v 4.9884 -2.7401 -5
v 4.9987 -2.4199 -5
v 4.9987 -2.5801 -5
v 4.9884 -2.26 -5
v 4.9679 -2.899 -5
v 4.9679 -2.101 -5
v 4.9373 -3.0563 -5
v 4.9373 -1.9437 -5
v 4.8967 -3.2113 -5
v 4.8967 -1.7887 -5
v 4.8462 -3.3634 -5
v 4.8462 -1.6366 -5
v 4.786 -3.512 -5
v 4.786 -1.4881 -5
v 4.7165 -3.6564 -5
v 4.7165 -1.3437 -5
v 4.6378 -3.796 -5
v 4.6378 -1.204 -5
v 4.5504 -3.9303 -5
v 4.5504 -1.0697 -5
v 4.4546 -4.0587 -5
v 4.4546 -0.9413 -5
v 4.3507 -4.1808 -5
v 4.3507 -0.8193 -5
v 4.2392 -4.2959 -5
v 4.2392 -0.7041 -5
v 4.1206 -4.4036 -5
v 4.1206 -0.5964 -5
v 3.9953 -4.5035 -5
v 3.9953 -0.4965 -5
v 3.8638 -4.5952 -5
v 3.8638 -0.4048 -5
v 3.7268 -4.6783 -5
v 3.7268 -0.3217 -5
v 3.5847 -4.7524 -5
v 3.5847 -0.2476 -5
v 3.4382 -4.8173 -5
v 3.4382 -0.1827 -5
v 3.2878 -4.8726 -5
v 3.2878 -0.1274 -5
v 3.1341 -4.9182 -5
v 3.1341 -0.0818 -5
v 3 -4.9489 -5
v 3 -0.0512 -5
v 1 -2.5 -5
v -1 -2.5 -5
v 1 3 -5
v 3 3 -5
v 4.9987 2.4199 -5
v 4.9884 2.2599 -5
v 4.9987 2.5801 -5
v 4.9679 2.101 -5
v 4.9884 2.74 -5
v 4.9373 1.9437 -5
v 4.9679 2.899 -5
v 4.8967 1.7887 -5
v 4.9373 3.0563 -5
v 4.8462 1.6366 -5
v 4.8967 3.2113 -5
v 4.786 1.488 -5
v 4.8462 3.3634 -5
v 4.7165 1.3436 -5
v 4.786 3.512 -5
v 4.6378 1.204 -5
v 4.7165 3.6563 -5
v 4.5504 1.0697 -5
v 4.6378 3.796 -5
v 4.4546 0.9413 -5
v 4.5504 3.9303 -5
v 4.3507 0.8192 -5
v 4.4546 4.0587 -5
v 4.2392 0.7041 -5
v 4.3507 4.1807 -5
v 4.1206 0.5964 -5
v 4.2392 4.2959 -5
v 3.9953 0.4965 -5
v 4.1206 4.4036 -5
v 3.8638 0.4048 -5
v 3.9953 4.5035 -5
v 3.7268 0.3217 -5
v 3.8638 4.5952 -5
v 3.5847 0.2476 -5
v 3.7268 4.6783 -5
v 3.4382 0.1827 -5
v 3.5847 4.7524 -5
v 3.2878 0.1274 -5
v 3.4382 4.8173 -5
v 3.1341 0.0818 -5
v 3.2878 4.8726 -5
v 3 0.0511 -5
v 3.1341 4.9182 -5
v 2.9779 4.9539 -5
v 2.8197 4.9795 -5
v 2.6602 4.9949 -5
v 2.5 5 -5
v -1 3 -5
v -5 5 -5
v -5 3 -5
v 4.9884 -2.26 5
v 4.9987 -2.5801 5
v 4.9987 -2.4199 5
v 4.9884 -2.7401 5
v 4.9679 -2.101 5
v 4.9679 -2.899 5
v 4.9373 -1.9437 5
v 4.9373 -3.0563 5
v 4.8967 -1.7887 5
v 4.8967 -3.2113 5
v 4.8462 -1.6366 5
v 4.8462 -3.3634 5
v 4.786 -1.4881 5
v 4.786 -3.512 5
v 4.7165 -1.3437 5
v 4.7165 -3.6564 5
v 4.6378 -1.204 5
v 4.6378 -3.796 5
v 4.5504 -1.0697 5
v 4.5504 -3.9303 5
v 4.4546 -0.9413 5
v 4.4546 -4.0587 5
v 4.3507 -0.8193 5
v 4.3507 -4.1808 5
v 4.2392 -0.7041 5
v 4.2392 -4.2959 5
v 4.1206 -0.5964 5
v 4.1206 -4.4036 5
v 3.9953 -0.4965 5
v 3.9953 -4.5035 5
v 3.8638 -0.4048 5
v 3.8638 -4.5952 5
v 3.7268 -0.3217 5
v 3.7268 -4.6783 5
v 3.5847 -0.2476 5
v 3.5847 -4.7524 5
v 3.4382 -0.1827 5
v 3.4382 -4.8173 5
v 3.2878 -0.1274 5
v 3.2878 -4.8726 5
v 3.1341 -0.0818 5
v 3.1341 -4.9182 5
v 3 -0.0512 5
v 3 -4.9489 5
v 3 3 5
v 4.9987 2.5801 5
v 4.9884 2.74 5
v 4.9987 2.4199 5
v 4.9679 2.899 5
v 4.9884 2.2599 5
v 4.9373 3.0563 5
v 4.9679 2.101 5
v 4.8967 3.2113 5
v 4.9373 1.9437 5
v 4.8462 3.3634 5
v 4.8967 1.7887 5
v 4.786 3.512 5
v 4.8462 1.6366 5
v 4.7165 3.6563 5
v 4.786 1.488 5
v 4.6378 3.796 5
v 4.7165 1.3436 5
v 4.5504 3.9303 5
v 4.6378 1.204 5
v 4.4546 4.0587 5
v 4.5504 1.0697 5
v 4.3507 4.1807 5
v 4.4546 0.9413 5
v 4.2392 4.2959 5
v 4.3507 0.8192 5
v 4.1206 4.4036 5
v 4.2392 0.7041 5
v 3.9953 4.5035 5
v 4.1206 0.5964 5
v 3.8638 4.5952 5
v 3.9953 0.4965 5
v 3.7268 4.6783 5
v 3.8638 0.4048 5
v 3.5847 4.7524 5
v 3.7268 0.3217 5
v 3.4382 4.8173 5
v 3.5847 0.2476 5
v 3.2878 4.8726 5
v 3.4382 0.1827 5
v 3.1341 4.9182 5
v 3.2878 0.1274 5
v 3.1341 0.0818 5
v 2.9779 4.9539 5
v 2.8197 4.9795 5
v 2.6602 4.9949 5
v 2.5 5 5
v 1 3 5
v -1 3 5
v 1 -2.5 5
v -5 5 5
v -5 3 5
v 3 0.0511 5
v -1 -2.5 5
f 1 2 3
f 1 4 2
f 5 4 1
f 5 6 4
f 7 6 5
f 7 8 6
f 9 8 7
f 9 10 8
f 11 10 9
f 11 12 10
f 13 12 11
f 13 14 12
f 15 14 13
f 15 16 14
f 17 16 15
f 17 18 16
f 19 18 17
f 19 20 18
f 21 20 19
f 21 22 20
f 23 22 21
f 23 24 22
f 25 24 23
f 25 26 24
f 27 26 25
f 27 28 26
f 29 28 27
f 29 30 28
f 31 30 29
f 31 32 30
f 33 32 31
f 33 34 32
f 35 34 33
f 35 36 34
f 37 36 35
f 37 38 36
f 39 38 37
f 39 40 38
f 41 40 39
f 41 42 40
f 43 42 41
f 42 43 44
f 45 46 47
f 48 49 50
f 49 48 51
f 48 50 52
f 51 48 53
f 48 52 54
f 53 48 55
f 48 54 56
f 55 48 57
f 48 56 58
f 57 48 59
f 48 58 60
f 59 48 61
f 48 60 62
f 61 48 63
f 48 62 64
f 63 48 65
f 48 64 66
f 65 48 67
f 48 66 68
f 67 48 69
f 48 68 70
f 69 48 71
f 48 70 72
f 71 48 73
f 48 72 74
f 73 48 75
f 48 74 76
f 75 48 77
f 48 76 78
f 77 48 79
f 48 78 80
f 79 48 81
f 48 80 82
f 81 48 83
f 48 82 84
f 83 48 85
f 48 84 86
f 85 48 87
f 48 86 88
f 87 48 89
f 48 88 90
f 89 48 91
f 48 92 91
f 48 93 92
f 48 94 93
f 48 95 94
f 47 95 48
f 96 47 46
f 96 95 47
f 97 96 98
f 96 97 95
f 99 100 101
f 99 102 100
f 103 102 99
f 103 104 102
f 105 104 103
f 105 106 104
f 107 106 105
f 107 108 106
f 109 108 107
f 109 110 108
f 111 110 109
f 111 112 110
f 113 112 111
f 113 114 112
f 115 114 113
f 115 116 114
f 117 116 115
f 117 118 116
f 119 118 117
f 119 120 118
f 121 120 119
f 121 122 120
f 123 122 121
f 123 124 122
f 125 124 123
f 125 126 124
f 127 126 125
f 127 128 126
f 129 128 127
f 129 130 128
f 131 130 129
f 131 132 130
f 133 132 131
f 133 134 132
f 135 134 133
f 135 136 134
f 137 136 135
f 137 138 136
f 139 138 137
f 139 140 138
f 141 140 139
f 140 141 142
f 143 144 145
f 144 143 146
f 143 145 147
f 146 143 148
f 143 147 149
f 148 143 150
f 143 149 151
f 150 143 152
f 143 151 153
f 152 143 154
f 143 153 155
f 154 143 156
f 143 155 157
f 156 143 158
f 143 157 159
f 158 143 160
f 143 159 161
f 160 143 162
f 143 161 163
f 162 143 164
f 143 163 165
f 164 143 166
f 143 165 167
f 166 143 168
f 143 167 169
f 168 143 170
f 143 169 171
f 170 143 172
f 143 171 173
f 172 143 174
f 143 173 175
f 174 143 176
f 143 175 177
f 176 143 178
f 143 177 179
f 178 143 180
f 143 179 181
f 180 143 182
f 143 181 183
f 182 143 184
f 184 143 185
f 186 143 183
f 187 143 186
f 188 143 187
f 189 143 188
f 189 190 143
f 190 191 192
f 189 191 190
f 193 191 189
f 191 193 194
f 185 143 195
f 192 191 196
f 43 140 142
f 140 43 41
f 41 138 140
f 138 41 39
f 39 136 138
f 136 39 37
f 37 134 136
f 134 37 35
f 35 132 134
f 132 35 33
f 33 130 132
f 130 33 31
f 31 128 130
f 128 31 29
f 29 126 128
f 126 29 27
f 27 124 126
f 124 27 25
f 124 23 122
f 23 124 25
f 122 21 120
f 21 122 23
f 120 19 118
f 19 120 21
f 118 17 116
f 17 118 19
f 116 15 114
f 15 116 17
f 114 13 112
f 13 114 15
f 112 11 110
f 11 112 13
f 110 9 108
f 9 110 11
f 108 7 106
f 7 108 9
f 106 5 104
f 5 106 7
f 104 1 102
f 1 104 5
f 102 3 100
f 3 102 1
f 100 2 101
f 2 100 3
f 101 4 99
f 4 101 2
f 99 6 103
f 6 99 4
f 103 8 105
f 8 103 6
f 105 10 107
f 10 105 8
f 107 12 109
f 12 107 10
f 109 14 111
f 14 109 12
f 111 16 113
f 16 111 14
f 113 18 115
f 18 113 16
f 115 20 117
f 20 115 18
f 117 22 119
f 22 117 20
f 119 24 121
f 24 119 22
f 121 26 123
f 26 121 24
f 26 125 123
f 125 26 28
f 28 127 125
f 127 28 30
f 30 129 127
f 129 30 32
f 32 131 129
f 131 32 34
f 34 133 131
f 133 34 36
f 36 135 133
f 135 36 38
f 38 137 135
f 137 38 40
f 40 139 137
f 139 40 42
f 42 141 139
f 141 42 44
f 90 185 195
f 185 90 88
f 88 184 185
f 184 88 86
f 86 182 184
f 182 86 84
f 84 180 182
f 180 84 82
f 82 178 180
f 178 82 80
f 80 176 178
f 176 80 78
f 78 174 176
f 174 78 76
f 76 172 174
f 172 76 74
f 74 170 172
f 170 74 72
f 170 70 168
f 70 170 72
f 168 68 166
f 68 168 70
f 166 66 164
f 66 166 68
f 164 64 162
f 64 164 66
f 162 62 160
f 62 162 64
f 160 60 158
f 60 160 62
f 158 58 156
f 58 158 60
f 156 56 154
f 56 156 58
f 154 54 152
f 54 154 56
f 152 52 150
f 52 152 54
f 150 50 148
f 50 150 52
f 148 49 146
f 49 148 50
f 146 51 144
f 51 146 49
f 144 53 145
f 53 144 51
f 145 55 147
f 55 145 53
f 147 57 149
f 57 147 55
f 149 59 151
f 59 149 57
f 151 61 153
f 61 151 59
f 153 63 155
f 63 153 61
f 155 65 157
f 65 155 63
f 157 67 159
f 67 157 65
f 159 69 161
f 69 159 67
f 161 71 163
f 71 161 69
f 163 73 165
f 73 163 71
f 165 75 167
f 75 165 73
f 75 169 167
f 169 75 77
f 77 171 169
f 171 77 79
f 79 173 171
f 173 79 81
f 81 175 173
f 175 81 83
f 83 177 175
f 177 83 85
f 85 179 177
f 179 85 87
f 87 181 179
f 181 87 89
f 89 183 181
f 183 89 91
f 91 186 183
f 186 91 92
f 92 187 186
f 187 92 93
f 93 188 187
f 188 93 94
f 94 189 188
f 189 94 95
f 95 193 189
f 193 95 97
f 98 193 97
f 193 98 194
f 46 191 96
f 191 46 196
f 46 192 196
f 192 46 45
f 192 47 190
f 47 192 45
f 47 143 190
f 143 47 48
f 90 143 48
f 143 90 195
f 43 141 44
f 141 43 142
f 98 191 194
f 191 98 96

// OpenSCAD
// Generated by SolidPython 1.1.3 on 2025-02-20 04:03:49
$fn=50;


intersection() {
	translate(v = [-5.0000000000, -5.0000000000, -5.0000000000]) {
		linear_extrude(height = 10) {
			polygon(points = [[7.5000000000, 10.0000000000], [7.6601755500, 9.9948634819], [7.8196929042, 9.9794750346], [7.9778965718, 9.9538978925], [8.1341364598, 9.9182371576], [8.2877705451, 9.8726393675], [8.4381675122, 9.8172918934], [8.5847093478, 9.7524221698], [8.7267938800, 9.6782967603], [8.8638372530, 9.5952202622], [8.9952763262, 9.5035340547], [9.1205709883, 9.4036148959], [9.2392063765, 9.2958733752], [9.3506949927, 9.1807522257], [9.4545787062, 9.0587245046], [9.5504306365, 8.9302916503], [9.6378569075, 8.7959814208], [9.7164982659, 8.6563457256], [9.7860315575, 8.5119583578], [9.8461710551, 8.3634126361], [9.8966696326, 8.2113189666], [9.9373197805, 8.0563023349], [9.9679544585, 7.8989997376], [9.9884477824, 7.7400575648], [9.9987155405, 7.5801289439], [9.9987155405, 7.4198710561], [9.9884477824, 7.2599424352], [9.9679544585, 7.1010002624], [9.9373197805, 6.9436976651], [9.8966696326, 6.7886810334], [9.8461710551, 6.6365873639], [9.7860315575, 6.4880416422], [9.7164982659, 6.3436542744], [9.6378569075, 6.2040185792], [9.5504306365, 6.0697083497], [9.4545787062, 5.9412754954], [9.3506949927, 5.8192477743], [9.2392063765, 5.7041266248], [9.1205709883, 5.5963851041], [8.9952763262, 5.4964659453], [8.8638372530, 5.4047797378], [8.7267938800, 5.3217032397], [8.5847093478, 5.2475778302], [8.4381675122, 5.1827081066], [8.2877705451, 5.1273606325], [8.1341364598, 5.0817628424], [7.9778965718, 5.0461021075], [7.8196929042, 5.0205249654], [7.6601755500, 5.0051365181], [7.5000000000, 5.0000000000], [7.5000000000, 5.0000000000], [7.6601755500, 4.9948634819], [7.8196929042, 4.9794750346], [7.9778965718, 4.9538978925], [8.1341364598, 4.9182371576], [8.2877705451, 4.8726393675], [8.4381675122, 4.8172918934], [8.5847093478, 4.7524221698], [8.7267938800, 4.6782967603], [8.8638372530, 4.5952202622], [8.9952763262, 4.5035340547], [9.1205709883, 4.4036148959], [9.2392063765, 4.2958733752], [9.3506949927, 4.1807522257], [9.4545787062, 4.0587245046], [9.5504306365, 3.9302916503], [9.6378569075, 3.7959814208], [9.7164982659, 3.6563457256], [9.7860315575, 3.5119583578], [9.8461710551, 3.3634126361], [9.8966696326, 3.2113189666], [9.9373197805, 3.0563023349], [9.9679544585, 2.8989997376], [9.9884477824, 2.7400575648], [9.9987155405, 2.5801289439], [9.9987155405, 2.4198710561], [9.9884477824, 2.2599424352], [9.9679544585, 2.1010002624], [9.9373197805, 1.9436976651], [9.8966696326, 1.7886810334], [9.8461710551, 1.6365873639], [9.7860315575, 1.4880416422], [9.7164982659, 1.3436542744], [9.6378569075, 1.2040185792], [9.5504306365, 1.0697083497], [9.4545787062, 0.9412754954], [9.3506949927, 0.8192477743], [9.2392063765, 0.7041266248], [9.1205709883, 0.5963851041], [8.9952763262, 0.4964659453], [8.8638372530, 0.4047797378], [8.7267938800, 0.3217032397], [8.5847093478, 0.2475778302], [8.4381675122, 0.1827081066], [8.2877705451, 0.1273606325], [8.1341364598, 0.0817628424], [7.9778965718, 0.0461021075], [7.8196929042, 0.0205249654], [7.6601755500, 0.0051365181], [7.5000000000, 0.0000000000], [0, 0], [0, 10]]);
		}
	}
	rotate(a = -90, v = [0, 0, 1]) {
		translate(v = [-5.0000000000, -5.0000000000, -5.0000000000]) {
			linear_extrude(height = 10) {
				polygon(points = [[0, 0], [2.0000000000, 0], [2.0000000000, 4.0000000000], [7.5000000000, 4.0000000000], [7.5000000000, 6.0000000000], [2.0000000000, 6.0000000000], [2.0000000000, 8.0000000000], [10, 8.0000000000], [10, 10], [0, 10]]);
			}
		}
	}
}
/***********************************************
*********      SolidPython code:      **********
************************************************
 
from solid import *
from solid.utils import *

import math
import matplotlib.pyplot as plt
import subprocess
import os

class Hole:
    def __init__(self, x, y, radius):
        """
        Hole defined by:
        :param x: x dimension for center point of the circle as a ratio of letter height
        :param y: y dimension for center point of the circle as a ratio of letter height
        :param radius: radius of circle as a ratio of letter height
        """
        self.x = x
        self.y = y
        self.radius = radius

class Letter3D:
    def __init__(self, name, outer_shape_points, height, holes=None):
        """
        3D Letter defined by:
        :param name: name of letter
        :param outer_shape_points: points defining the outer shape of the letter
        :param heigh: size of cube that letter fits inside
        :param holes: list of Holes
        """
        self.name = name
        self.outer_shape_points = outer_shape_points
        self.holes = holes if holes is None else []
        self.height = height


    def generate(self):
        shape = polygon(points=self.outer_shape_points)

        if self.holes:
            for hole in self.holes:
                circle_hole = circle(r=hole.radius*self.height)
                positioned_hole = translate([hole.x*self.height, hole.y*self.height])(circle_hole)
                shape = difference()(shape, positioned_hole)
        
        shape_3d = linear_extrude(height=self.height)(shape)
        shape_3d = translate([-self.height/2, -self.height/2, -self.height/2])(shape_3d)
        return shape_3d
    
    def render(self):
        scad_render_to_file(self.shape, f"output/{self.name}.scad", file_header='$fn=50;')
        subprocess.run(["C:\\Program Files\\OpenSCAD\\openscad.exe", "-o", f"output\\{self.name}.stl", f"output\\{self.name}.scad"])


class TwoLetter3D:
    def __init__(self, height, letterA, letterA_face, letterB=None, letterB_face=None):
        self.height = height
        self.letterA = letterA
        self.letterB = letterB
        self.letterA_face = letterA_face
        self.letterB_face = letterB_face

    def call_letter_generation(self, letter):
        letter = letter.upper()
        function_name = f"letter_{letter}"
        func = globals().get(function_name)
        if func is None:
            raise ValueError(f"No letter generation function defined for letter '{letter}'.")
        else:
            print(func)
        return func(self.height)
    
    def rotate_object(self, face, shape):
        face = face.lower()
        if face == "z":
            return shape
        if face == "x":
            return rotate(a=90, v=[0,1,0])(shape)
        if face == "y":
            return rotate(a=-90, v=[0,0,1])(shape)
        else:
            raise ValueError("Face must be one of 'x', 'y', or 'z'.")

    def render(self):
        if self.letterA:
            letterA3D = self.call_letter_generation(self.letterA)
            letterA3D = self.rotate_object(self.letterA_face, letterA3D)

        if self.letterB:
            letterB3D = self.call_letter_generation(self.letterB)
            letterB3D = self.rotate_object(self.letterB_face, letterB3D)
            combined = intersection()(letterA3D, letterB3D)
            file_name = self.letterA + self.letterB
            scad_render_to_file(combined, f"output/{file_name}.scad", file_header='$fn=50;')
            subprocess.run(["C:\\Program Files\\OpenSCAD\\openscad.exe", "-o", f"output\\{file_name}.stl", f"output\\{file_name}.scad"])
            return
        else:
            file_name = self.letterA
            scad_render_to_file(letterA3D, f"output/{file_name}.scad", file_header='$fn=50;')
            subprocess.run(["C:\\Program Files\\OpenSCAD\\openscad.exe", "-o", f"output\\{file_name}.stl", f"output\\{file_name}.scad"])
    
                

def arc_points(radius, start_angle, end_angle, center=[0,0], num_points=50):
    angles = [start_angle + i * (end_angle - start_angle) / (num_points - 1)
              for i in range(num_points)]
    points = [
        (center[0] + radius * math.cos(math.radians(angle)),
         center[1] + radius * math.sin(math.radians(angle)))
        for angle in angles
    ]
    return points

def letter_A(h):
    shape_points = [(0,0), (h/2, h), (h, 0), (5/6*h, 0), (2/3*h, 1/3*h), (1/3*h, 1/3*h), (h/6, 0)]
    holes = [Hole(1/2, 7/12, 1/6)]
    A = Letter3D("A", shape_points, h, holes)
    return A.generate()

def letter_B(h):
    top_arc_points = arc_points(h/4, 90, -90, center=[3/4*h, 3/4*h])
    bottom_arc_points = arc_points(h/4, 90, -90, center=[3/4*h, h/4])
    other_points = [(0,0),(0,h)]

    shape_points = top_arc_points + bottom_arc_points + other_points
    holes = [Hole(1/2, 3/4, 1/6), Hole(1/2, 1/4, 1/6)]
    B = Letter3D("B", shape_points, h, holes)
    return B.generate()

def letter_C(h):
    outer_arc_points = arc_points(h/2, 30, 330, center=[h/2,h/2])
    inner_arc_points = arc_points(h/4, 30, 330, center=[h/2,h/2])[::-1]
    shape_points = outer_arc_points + inner_arc_points
    # print(shape_points)
    C = Letter3D("C", shape_points, h)
    return C.generate()


def letter_D(h):
    outer_arc_points = arc_points(h/2, 90, -90, center= [h/2, h/2])
    shape_points = outer_arc_points + [(0,0), (0, h)]
    holes = [Hole(1/2, 1/2, 1/6)]
    D = Letter3D("D", shape_points, h, holes)
    return D.generate()

def letter_E(h):
    points = [(0,0), (h,0), (h,h/5), (h/5,h/5), (h/5,2/5*h), (3/4*h,2/5*h), (3/4*h,3/5*h), (h/5,3/5*h), (h/5,4/5*h), (h,4/5*h), (h,h), (0,h)]
    E = Letter3D("E", points, h)
    return E.generate()

def letter_F(h):
    points = [(0,0), (h/5,0), (h/5,2/5*h), (3/4*h,2/5*h), (3/4*h,3/5*h), (h/5,3/5*h), (h/5,4/5*h), (h,4/5*h), (h,h), (0,h)]
    F = Letter3D("F", points, h)
    return F.generate()

if __name__ == "__main__":
    os.makedirs("output", exist_ok=True)

    letters = [chr(x) for x in range(ord('A'), ord('F') + 1)]
    for letter in letters:
        for other_letter in letters:
            shape = TwoLetter3D(10, letter, "z", other_letter, "y")
            shape.render()
 
 
************************************************/
